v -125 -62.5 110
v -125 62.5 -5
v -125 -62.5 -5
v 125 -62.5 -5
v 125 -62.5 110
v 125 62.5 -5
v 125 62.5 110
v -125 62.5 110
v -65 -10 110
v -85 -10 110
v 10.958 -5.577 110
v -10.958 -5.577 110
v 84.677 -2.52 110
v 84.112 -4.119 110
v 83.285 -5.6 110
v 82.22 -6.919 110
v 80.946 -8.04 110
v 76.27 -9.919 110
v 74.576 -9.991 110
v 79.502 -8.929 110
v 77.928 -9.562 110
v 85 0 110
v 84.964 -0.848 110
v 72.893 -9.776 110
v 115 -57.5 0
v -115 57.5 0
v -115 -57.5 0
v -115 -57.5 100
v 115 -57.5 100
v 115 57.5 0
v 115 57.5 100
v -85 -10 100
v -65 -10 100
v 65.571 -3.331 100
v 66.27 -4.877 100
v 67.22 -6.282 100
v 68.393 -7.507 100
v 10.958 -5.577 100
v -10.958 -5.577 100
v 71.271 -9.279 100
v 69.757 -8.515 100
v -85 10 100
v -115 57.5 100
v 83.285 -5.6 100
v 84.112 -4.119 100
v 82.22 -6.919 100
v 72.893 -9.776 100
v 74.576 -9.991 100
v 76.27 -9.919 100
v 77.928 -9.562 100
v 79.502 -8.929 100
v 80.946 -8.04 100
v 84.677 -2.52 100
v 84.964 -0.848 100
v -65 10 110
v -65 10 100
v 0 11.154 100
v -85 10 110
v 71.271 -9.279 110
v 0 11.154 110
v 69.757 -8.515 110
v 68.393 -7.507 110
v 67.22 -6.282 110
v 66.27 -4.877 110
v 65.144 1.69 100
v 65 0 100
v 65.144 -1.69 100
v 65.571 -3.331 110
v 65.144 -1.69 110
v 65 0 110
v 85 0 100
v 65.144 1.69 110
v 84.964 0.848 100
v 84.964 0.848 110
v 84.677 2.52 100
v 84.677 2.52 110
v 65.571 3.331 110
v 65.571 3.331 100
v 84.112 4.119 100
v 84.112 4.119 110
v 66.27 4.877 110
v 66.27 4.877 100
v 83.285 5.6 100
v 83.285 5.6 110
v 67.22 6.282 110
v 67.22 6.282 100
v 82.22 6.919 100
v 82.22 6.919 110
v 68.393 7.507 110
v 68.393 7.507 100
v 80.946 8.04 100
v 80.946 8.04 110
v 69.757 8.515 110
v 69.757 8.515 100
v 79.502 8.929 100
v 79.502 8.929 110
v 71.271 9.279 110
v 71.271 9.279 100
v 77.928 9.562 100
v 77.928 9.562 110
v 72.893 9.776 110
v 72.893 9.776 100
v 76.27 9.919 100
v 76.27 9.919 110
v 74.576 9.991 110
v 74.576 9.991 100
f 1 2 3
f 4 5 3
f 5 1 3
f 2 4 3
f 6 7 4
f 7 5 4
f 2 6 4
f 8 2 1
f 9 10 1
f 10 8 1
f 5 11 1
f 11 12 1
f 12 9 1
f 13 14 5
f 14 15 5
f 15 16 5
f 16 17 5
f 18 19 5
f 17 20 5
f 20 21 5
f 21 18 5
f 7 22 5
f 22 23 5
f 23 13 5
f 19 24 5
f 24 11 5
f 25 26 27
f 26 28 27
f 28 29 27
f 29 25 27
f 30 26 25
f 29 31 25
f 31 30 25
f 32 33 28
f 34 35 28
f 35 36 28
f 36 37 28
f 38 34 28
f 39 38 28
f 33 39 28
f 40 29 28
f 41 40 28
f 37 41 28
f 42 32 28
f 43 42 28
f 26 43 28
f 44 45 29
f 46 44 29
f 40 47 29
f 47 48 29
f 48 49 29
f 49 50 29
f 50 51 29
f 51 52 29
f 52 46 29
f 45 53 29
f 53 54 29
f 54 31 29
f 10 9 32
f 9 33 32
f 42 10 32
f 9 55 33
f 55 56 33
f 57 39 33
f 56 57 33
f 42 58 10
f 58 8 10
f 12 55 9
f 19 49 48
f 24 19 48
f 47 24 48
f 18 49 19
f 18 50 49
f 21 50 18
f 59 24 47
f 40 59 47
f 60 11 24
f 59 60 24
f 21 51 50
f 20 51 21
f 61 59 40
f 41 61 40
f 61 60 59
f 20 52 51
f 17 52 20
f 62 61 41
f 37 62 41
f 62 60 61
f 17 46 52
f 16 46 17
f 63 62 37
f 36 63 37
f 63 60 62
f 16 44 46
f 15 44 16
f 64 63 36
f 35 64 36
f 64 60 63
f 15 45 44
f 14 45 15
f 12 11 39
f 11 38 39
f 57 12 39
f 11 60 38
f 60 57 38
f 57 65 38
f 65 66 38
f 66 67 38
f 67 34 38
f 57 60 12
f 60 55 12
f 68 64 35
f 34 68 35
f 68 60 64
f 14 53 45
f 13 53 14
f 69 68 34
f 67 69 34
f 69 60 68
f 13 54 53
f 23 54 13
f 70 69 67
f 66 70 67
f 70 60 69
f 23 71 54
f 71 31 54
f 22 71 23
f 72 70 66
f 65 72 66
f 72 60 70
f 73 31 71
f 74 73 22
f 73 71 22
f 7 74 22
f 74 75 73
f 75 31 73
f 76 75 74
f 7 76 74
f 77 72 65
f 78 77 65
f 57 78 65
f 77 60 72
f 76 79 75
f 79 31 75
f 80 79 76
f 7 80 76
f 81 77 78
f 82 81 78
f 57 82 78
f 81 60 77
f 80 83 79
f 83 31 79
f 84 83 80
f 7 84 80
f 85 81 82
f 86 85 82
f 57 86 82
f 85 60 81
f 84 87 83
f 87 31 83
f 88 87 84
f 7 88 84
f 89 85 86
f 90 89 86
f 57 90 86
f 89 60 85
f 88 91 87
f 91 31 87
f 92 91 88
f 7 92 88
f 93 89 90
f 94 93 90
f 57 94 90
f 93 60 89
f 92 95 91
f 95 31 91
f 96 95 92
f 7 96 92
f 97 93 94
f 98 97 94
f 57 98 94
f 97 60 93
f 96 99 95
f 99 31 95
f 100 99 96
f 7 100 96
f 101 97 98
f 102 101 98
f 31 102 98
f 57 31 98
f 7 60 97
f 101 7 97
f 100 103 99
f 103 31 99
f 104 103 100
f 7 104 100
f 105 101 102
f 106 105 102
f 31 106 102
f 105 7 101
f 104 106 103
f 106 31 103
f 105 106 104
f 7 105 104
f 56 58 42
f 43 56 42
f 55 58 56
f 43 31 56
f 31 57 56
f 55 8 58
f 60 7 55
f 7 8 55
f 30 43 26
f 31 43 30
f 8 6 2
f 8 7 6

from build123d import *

# Parameters (mm, degrees)
SKETCH1_W           = 250
SKETCH1_H           = 125
SKETCH1_W_2         = 230
SKETCH1_H_2         = 115
BOSS_EXTRUDE1_DEPTH = 100
SKETCH2_W           = 250
SKETCH2_H           = 125
BOSS_EXTRUDE2_DEPTH = 5
SKETCH3_W           = 250
SKETCH3_H           = 125
SKETCH3_W_2         = 230
SKETCH3_H_2         = 115
SKETCH3_R           = 10
SKETCH3_W_3         = 20
SKETCH3_H_3         = 20
BOSS_EXTRUDE4_DEPTH = 10


with BuildPart() as part:
    # Sketch1 → Boss-Extrude1 (new body)
    with BuildSketch(Plane.XY):
        Rectangle(SKETCH1_W, SKETCH1_H)
        Rectangle(SKETCH1_W_2, SKETCH1_H_2, mode=Mode.SUBTRACT)
    extrude(amount=BOSS_EXTRUDE1_DEPTH)

    # Sketch2 → Boss-Extrude2 (add)
    with BuildSketch(Plane(origin=(0, 0, 0), x_dir=(-1, 0, 0), z_dir=(0, 0, -1))):
        Rectangle(SKETCH2_W, SKETCH2_H)
    extrude(amount=BOSS_EXTRUDE2_DEPTH)

    # Sketch3 → Boss-Extrude4 (add)
    # profile 1 of 2: a face of its own
    with BuildSketch(Plane.XY.offset(100)):
        Rectangle(SKETCH3_W, SKETCH3_H)
        Rectangle(SKETCH3_W_2, SKETCH3_H_2, mode=Mode.SUBTRACT)
    # profile 2 of 2: a face of its own
    with BuildSketch(Plane.XY.offset(100)):
        Rectangle(SKETCH3_W_2, SKETCH3_H_2)
        with Locations((75, 0)):
            Circle(SKETCH3_R, mode=Mode.SUBTRACT)
        with Locations((-75, 0)):
            Rectangle(SKETCH3_W_3, SKETCH3_H_3, mode=Mode.SUBTRACT)
        Polygon((0, 11.153858408), (10.958136059, -5.576929204), (-10.958136059, -5.576929204), align=None, mode=Mode.SUBTRACT)
    extrude(amount=BOSS_EXTRUDE4_DEPTH)


solid = part.part
